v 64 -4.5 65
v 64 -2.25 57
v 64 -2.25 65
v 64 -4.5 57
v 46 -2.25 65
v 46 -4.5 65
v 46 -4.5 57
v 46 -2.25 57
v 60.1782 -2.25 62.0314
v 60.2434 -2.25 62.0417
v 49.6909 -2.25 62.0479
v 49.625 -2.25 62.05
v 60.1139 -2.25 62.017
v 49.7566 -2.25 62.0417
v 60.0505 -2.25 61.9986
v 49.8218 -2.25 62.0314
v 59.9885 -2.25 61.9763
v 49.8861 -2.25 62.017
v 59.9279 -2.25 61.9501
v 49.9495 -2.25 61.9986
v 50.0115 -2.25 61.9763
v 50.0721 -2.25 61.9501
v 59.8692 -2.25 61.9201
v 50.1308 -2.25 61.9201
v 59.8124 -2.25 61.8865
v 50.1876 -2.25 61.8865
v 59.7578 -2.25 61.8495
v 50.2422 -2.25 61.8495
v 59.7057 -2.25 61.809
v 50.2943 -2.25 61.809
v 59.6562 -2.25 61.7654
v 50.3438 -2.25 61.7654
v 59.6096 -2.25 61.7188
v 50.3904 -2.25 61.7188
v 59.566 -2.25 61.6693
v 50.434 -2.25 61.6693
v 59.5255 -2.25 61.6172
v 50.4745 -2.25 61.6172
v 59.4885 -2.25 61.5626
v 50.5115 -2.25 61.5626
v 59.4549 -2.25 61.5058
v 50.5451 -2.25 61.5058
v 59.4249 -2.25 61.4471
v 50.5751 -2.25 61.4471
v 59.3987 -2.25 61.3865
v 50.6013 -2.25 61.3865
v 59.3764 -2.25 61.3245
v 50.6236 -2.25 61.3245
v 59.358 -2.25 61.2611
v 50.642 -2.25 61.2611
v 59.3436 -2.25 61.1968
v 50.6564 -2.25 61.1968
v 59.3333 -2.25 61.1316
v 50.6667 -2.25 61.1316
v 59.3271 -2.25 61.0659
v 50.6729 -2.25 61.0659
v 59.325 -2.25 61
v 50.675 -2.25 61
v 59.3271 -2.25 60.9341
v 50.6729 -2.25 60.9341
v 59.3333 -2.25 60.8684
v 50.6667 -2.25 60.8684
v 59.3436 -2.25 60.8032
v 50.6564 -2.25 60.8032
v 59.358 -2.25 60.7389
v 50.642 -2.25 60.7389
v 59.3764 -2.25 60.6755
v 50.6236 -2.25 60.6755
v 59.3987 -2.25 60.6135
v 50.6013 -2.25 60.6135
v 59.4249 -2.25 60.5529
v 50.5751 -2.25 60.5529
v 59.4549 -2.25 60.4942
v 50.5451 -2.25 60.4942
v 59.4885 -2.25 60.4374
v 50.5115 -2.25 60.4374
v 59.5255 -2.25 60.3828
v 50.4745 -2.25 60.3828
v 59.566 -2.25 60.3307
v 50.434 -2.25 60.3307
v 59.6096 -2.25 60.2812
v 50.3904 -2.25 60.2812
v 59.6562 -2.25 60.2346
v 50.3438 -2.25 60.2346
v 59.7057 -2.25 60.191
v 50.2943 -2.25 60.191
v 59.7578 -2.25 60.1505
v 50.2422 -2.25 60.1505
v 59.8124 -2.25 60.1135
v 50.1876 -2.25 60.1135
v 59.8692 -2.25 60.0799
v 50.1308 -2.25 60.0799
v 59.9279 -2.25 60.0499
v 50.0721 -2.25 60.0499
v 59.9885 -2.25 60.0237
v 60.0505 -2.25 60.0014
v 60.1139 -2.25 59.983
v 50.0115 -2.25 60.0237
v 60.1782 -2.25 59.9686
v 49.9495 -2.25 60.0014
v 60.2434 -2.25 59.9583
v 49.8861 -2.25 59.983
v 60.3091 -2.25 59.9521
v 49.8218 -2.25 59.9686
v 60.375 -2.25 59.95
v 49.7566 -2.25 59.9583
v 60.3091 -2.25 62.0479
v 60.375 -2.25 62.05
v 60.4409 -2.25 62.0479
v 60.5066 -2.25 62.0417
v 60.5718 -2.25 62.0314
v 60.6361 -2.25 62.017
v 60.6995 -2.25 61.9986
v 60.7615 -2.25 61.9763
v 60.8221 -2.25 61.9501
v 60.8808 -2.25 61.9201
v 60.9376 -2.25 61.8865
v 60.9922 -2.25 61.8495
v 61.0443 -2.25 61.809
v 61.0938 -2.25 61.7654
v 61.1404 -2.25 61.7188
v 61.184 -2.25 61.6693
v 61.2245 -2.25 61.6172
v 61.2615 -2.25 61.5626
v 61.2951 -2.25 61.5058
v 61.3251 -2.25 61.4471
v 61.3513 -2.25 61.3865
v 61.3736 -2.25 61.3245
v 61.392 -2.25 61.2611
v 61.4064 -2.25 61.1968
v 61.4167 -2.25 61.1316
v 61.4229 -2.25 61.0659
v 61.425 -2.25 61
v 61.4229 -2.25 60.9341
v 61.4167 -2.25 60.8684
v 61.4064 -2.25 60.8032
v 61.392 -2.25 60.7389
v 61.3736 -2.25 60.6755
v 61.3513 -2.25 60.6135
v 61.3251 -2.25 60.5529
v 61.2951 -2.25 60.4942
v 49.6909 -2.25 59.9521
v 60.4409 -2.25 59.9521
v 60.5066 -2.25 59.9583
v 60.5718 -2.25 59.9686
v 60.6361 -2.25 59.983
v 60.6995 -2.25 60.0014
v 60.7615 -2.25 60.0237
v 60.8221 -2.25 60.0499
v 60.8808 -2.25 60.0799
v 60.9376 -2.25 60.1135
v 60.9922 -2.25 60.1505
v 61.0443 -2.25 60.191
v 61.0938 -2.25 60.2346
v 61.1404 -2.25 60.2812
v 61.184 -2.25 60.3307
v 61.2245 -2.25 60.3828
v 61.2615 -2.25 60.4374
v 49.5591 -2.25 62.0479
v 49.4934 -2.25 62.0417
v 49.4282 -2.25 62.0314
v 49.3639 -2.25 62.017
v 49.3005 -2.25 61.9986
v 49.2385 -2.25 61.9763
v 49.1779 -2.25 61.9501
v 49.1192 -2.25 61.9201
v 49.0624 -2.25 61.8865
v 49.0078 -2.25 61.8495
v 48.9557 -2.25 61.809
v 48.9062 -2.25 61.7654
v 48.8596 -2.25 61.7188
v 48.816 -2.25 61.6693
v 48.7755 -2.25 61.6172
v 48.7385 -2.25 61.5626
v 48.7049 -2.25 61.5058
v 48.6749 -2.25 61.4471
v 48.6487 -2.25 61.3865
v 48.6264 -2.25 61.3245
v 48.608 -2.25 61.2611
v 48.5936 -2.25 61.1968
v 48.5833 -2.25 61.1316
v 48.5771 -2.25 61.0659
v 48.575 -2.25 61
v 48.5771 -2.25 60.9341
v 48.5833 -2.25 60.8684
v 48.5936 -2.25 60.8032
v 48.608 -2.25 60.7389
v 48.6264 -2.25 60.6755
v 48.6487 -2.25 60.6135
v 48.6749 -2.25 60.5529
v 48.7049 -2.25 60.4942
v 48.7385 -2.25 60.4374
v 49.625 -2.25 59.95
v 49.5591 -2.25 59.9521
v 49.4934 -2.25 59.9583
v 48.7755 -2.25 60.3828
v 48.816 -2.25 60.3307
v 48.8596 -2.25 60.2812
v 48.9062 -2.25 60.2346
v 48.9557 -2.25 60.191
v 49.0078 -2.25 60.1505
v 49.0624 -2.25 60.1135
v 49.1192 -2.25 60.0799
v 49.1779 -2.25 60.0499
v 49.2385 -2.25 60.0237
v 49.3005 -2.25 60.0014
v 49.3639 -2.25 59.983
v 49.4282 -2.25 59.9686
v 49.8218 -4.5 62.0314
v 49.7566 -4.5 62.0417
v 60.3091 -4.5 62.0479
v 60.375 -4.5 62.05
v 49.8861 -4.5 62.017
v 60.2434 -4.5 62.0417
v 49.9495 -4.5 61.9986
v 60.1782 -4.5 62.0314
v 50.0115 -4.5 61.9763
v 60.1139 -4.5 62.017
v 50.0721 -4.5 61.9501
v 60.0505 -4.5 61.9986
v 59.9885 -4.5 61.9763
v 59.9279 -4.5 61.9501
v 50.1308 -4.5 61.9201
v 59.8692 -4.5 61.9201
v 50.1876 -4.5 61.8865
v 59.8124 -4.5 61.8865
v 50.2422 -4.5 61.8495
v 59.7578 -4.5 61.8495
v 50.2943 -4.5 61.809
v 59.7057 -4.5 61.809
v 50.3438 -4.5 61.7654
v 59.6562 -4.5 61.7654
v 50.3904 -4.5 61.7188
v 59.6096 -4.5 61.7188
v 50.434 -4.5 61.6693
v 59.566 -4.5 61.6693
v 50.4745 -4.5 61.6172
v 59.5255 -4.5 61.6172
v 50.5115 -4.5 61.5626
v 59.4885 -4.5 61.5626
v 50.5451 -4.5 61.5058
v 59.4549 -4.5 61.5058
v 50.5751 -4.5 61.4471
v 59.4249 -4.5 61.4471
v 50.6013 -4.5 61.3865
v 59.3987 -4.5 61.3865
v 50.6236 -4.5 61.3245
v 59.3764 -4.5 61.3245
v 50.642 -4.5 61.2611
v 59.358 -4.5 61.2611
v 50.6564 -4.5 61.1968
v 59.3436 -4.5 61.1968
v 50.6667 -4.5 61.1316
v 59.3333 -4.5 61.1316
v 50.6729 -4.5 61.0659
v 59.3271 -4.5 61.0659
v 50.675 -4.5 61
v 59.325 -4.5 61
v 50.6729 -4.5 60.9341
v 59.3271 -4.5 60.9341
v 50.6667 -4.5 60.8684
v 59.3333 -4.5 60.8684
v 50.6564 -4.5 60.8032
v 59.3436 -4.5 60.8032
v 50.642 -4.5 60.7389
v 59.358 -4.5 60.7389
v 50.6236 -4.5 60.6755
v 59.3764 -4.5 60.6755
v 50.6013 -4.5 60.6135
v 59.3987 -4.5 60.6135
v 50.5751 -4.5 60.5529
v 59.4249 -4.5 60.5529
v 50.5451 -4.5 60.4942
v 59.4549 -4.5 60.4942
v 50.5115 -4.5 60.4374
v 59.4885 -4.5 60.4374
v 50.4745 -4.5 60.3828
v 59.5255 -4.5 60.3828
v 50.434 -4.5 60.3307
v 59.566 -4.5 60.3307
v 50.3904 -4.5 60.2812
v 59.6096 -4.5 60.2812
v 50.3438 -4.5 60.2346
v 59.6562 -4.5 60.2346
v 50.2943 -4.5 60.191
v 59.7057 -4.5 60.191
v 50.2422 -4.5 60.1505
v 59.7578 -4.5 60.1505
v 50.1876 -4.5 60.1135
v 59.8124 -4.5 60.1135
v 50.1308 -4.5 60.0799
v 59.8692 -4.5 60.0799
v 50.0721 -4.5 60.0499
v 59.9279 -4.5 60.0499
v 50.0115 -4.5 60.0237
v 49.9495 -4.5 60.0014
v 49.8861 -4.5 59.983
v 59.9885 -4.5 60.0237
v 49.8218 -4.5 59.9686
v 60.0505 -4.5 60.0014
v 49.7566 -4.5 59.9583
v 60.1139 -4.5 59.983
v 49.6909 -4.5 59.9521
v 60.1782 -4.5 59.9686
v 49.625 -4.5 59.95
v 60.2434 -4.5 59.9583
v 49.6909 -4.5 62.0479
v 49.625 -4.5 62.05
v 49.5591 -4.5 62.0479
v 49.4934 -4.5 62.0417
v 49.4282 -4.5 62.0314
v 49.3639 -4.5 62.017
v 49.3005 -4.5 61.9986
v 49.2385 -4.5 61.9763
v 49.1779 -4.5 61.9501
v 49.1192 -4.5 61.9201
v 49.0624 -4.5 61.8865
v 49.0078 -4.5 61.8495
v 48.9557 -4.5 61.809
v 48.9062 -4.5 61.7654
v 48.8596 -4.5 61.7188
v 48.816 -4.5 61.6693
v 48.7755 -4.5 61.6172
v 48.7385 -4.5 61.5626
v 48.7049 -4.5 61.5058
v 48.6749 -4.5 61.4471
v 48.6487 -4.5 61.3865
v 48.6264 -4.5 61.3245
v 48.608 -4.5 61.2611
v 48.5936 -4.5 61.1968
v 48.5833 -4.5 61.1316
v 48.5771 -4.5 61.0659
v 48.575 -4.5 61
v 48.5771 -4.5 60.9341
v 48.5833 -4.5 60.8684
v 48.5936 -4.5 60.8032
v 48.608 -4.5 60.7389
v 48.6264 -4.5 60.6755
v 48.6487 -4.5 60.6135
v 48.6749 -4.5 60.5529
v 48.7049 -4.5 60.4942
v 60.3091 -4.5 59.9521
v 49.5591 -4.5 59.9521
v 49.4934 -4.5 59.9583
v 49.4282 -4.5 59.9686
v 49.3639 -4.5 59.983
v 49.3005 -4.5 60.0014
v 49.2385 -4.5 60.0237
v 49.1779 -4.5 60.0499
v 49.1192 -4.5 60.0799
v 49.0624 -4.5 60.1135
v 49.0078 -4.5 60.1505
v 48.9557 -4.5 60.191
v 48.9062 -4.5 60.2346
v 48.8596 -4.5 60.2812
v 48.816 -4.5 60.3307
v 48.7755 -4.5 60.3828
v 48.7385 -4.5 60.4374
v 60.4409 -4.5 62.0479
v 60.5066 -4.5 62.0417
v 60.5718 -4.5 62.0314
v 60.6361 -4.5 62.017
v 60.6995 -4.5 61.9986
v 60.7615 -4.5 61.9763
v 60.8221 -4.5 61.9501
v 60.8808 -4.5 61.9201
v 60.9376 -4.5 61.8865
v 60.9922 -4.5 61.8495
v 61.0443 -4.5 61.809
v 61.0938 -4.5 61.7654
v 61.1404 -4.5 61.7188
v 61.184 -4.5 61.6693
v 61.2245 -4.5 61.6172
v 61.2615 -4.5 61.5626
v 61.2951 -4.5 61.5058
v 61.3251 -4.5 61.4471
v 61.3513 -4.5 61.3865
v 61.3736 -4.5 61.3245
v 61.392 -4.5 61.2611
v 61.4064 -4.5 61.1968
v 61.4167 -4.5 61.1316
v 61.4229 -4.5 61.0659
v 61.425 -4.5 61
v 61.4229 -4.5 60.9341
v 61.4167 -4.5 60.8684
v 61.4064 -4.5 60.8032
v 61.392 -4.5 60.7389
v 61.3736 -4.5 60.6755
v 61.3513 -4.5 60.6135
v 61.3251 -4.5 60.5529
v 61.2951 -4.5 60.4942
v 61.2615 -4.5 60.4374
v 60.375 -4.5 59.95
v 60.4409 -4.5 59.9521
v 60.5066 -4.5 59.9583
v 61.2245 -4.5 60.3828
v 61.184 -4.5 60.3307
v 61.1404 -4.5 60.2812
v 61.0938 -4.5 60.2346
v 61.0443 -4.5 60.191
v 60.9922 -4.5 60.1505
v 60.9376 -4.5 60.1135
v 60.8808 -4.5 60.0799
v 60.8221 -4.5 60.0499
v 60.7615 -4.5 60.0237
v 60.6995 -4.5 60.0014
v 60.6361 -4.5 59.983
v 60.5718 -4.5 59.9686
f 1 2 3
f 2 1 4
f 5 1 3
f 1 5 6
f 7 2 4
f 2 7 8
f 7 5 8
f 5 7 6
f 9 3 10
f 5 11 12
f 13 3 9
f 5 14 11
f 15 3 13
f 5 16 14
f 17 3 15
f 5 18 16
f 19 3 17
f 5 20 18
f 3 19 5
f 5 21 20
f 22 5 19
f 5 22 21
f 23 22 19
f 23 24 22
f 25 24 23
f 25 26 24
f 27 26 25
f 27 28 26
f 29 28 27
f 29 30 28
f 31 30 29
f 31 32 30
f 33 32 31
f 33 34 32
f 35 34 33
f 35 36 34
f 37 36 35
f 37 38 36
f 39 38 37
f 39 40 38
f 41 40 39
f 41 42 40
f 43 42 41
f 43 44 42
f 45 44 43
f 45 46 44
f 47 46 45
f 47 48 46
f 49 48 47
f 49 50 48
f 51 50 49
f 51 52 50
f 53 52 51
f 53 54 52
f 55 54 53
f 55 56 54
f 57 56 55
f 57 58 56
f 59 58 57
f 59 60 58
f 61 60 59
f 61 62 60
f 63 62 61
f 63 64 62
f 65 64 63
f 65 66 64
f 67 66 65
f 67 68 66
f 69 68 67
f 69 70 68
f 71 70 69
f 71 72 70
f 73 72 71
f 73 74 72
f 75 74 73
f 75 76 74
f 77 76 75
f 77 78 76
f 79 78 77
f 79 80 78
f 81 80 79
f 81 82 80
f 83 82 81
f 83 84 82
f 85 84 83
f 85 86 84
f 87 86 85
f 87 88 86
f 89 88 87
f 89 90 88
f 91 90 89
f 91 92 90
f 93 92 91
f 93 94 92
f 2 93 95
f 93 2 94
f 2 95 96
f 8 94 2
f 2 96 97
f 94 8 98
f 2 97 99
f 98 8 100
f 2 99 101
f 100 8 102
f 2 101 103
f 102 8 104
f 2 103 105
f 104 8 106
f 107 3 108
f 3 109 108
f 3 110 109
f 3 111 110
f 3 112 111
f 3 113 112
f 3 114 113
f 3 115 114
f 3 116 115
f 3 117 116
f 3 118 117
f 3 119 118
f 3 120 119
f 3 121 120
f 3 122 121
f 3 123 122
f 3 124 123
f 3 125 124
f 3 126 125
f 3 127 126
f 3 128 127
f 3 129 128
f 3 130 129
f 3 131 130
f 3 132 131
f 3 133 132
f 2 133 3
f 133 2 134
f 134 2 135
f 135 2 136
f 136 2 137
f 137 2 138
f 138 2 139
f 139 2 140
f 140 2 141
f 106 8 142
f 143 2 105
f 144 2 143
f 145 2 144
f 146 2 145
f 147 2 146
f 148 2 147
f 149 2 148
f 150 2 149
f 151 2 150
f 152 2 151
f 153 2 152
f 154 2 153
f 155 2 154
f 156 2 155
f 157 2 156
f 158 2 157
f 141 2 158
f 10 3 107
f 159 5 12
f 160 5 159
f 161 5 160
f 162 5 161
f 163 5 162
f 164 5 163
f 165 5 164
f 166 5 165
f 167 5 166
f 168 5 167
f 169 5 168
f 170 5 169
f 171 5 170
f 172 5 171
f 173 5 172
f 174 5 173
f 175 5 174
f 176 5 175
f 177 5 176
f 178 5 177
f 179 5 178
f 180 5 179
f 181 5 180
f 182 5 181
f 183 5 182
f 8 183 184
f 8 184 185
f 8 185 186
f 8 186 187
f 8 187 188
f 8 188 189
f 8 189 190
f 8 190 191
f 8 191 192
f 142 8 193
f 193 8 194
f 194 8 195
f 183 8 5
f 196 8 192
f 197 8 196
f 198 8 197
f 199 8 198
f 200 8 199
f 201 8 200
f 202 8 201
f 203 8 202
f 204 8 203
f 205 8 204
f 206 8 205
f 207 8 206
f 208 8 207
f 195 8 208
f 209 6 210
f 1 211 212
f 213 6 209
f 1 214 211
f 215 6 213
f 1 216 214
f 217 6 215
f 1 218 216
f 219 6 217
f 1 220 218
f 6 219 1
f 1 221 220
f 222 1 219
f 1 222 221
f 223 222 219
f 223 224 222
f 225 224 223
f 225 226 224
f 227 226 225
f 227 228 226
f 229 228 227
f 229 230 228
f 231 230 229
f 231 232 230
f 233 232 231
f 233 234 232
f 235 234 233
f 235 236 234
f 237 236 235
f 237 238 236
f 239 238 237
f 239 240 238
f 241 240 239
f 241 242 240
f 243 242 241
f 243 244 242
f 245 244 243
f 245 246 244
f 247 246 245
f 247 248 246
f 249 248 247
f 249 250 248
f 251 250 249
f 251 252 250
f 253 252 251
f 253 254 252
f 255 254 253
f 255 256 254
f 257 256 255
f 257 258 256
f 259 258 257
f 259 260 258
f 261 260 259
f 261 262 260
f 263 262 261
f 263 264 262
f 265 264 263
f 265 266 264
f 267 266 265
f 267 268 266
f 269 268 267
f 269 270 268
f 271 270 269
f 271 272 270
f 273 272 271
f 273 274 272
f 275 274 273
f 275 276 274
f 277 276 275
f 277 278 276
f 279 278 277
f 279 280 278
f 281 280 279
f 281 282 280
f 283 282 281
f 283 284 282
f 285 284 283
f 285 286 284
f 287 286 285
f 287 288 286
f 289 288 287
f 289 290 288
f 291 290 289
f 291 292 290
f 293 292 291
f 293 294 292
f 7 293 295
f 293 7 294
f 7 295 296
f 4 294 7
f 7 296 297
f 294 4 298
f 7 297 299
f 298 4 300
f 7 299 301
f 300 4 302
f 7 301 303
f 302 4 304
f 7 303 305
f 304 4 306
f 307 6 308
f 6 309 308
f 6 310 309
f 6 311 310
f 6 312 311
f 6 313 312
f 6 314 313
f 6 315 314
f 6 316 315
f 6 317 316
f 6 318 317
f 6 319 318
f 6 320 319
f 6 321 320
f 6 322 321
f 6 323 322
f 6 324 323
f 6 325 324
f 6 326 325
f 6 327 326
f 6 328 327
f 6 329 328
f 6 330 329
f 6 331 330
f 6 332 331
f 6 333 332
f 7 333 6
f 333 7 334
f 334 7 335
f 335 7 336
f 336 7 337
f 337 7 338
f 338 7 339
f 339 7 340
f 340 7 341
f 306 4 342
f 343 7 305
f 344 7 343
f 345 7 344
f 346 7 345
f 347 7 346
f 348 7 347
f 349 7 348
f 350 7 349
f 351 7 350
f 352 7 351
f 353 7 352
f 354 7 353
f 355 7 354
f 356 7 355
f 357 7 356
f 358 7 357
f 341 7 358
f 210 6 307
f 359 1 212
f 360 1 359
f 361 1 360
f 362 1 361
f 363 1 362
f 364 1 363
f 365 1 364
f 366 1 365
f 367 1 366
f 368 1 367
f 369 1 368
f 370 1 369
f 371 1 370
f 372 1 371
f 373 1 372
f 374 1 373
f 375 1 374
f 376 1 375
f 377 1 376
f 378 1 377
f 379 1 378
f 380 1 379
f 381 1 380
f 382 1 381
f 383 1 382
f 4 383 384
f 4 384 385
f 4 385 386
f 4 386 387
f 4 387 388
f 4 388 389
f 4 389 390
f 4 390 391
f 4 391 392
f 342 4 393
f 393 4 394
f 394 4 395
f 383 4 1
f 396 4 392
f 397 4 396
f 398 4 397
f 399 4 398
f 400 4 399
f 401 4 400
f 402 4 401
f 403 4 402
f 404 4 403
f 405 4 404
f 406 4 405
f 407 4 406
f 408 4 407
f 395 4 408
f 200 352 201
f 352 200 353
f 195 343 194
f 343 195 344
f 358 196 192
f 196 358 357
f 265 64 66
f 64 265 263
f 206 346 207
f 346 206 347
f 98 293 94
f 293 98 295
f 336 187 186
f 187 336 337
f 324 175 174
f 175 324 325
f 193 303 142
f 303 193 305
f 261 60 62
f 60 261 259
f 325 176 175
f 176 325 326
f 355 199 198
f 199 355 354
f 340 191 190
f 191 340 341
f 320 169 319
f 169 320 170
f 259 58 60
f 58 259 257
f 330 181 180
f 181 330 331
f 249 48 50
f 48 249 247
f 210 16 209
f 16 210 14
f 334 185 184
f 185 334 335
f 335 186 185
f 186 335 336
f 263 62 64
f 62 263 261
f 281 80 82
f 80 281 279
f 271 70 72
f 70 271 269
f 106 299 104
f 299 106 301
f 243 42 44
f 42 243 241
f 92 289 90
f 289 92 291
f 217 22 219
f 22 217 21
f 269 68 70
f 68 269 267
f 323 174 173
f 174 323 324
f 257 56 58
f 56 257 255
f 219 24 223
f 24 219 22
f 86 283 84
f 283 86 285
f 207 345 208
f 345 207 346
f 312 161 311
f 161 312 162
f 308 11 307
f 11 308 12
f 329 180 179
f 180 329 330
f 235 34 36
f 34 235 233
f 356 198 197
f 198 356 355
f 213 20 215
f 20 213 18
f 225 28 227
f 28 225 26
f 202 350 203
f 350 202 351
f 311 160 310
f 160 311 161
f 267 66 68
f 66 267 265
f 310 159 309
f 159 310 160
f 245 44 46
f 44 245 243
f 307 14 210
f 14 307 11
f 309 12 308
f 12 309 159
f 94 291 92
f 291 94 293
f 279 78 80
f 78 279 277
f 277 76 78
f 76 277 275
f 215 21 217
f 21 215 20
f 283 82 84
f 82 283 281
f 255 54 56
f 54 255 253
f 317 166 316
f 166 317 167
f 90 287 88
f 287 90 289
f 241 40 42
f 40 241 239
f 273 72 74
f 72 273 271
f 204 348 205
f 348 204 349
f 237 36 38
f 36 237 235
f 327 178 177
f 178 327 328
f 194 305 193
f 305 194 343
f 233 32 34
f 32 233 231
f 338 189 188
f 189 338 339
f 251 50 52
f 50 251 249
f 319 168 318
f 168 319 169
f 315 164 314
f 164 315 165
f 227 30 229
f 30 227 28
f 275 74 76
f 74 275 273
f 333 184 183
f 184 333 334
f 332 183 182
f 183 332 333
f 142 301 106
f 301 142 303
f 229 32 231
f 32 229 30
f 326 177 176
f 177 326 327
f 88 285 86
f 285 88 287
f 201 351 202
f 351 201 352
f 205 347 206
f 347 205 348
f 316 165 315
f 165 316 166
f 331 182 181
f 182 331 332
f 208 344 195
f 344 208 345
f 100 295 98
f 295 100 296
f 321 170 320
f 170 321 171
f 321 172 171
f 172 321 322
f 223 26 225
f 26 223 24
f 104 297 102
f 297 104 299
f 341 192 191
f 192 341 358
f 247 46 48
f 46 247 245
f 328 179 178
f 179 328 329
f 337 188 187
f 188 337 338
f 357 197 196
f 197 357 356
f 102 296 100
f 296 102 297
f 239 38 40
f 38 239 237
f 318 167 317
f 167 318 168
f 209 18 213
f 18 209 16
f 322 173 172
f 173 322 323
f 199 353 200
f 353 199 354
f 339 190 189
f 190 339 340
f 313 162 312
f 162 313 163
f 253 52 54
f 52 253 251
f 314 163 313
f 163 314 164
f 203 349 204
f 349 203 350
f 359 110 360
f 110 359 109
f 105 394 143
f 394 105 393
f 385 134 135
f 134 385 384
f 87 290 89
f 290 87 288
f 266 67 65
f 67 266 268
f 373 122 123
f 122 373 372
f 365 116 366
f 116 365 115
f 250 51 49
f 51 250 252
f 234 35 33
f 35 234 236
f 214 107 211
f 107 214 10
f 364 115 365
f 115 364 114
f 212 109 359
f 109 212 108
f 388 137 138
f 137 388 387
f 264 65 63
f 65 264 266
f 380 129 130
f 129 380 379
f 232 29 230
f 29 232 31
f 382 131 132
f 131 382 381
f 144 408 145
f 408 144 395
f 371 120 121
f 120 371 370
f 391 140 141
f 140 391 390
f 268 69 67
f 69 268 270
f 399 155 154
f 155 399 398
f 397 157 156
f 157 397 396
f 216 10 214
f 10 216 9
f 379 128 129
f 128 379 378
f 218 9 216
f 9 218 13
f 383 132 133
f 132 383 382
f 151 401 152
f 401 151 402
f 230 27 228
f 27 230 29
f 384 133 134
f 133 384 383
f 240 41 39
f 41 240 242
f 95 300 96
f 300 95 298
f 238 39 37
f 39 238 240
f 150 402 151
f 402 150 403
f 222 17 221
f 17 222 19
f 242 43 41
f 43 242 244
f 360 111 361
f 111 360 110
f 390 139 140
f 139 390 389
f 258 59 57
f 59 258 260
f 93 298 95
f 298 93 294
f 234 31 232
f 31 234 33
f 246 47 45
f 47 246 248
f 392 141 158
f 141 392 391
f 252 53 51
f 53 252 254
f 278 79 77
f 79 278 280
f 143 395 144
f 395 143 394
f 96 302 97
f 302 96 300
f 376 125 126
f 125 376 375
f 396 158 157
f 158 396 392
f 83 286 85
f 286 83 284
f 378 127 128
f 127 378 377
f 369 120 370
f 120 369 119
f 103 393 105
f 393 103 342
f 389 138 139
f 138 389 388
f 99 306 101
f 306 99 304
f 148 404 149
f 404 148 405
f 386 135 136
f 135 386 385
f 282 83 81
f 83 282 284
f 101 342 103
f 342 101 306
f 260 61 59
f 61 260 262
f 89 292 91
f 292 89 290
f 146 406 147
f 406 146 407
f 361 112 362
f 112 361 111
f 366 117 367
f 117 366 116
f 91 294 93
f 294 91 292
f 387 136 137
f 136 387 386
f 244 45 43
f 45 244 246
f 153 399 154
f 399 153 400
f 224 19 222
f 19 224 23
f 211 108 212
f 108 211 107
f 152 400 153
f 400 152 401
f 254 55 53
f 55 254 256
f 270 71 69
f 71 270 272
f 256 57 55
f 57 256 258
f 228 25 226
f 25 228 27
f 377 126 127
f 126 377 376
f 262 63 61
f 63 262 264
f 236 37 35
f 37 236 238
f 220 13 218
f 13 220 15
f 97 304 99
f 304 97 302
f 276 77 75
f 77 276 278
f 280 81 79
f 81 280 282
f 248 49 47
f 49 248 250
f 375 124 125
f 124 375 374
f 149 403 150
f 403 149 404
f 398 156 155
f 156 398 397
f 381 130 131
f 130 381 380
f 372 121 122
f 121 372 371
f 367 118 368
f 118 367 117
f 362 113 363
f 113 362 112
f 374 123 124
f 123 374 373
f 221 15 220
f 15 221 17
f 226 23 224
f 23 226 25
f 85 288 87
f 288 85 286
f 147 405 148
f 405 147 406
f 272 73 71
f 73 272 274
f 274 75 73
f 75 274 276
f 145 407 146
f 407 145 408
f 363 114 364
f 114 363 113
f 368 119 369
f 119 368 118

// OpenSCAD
// ----- ----- ----- Declaração de Variáveis ----- ----- ----- //
res=100;
folga1=0.125;

esp=2.25;
compriObilongo=20;
largObi=5.85;

basePortax=56;
basePortay=2.85;
basePortaz=15;
PortaR=5.7/2;
PortaAlt=basePortay;
entrePorta=(52.7+41.25)/2;

haste1x=30;
haste1z=30;

haste2x=60;
haste2z=10;

haste3x=10;
haste3z=60+20;

haste4x=10;
haste4z=10;

portax=18;
portaz=8;

entreFuros=(8.6+12.9)/2;
rFuro=2.1/2;

vao=0.5;

entrePard=58-22-6*folga1;

// ----- ----- ----- Declaração de Funções ----- ----- ----- //

// ----- ----- ----- MAIN ----- ----- ----- //
translate([0,0,basePortaz])
difference(){
    translate([0,0,0]){
        //cube([haste2x,esp,haste1z]);
        //translate([0,-esp-(3/2)*basePortay,0])cube([haste2x,esp+(3/2)*basePortay,haste1z]);
        //translate([0,0,haste1z])cube([haste2x,esp,haste2z]);
        //translate([0,0,haste1z+haste2z])cube([haste3x,esp,haste3z]);
        //translate([0,0,haste1z+haste2z+haste3z])cube([haste2x,esp,haste2z]);
        //translate([haste2x-haste3x,0,haste1z+haste2z])cube([haste4x,esp,haste4z-portaz]);
        //translate([haste2x-haste3x+haste4x/2-portax/2,-esp,haste1z+haste2z+haste4z-portaz])cube([portax,esp,portaz]);
        //translate([haste2x-haste3x+haste4x/2-portax/2,0,haste1z+haste2z+haste4z-portaz])cube([portax,esp,portaz]);//
        translate([haste2x-haste3x+haste4x/2-portax/2,-2*esp,haste1z+haste2z+haste4z-portaz])cube([portax,esp,portaz]);
        //translate([haste2x-haste3x,0,haste1z+haste2z+haste3z-haste4z-compriObilongo+portaz])cube([haste4x,esp,haste4z+compriObilongo-portaz]);
        //translate([haste2x-haste3x,-esp,haste1z+haste2z+haste3z-haste4z-compriObilongo+portaz])cube([haste4x,esp,haste4z+compriObilongo-portaz+haste4z]);
        //translate([haste2x-haste3x+haste4x/2-portax/2,-esp,haste1z+haste2z+haste3z-haste4z-compriObilongo])cube([portax,esp,portaz]);
        //translate([haste2x-haste3x+haste4x/2-portax/2,-2*esp,haste1z+haste2z+haste3z-haste4z-compriObilongo])cube([portax,esp,portaz]);
    }
    
    // Furos do Porta
    #translate([-entreFuros/2,-2*esp,0])
    #translate([haste2x-haste4x/2,0,haste1z+haste2z+haste4z-portaz/2])
    #rotate([-90,0,0])
    #cylinder(3*esp,rFuro,rFuro,$fn=res);
    
    #translate([entreFuros/2,-2*esp,0])
    #translate([haste2x-haste4x/2,0,haste1z+haste2z+haste4z-portaz/2])
    #rotate([-90,0,0])
    #cylinder(3*esp,rFuro,rFuro,$fn=res);
    
    #translate([-entreFuros/2,-2*esp,haste1z+haste2z+haste3z-haste4z-20])
    #translate([haste2x-haste4x/2,0,portaz/2])
    #rotate([-90,0,0])
    #cylinder(2*esp,rFuro,rFuro,$fn=res);
    
    #translate([entreFuros/2,-2*esp,haste1z+haste2z+haste3z-haste4z-20])
    #translate([haste2x-haste4x/2,0,portaz/2])
    #rotate([-90,0,0])
    #cylinder(2*esp,rFuro,rFuro,$fn=res);
    
    //Furo Obilongo de Cima
    #hull(){
        #translate([haste2x-haste4x/2,-2*esp,haste1z+haste2z*1.2+haste3z-haste4z-20+(3/2)*portaz])
        #rotate([-90,0,0])
        #cylinder(4*esp,largObi/2,largObi/2,$fn=res);
        
        #translate([0,0,haste4z+compriObilongo-2*portaz+haste2z*0.8])
        #translate([haste2x-haste4x/2,-2*esp,haste1z+haste2z+haste3z-haste4z-20+(3/2)*portaz])
        #rotate([-90,0,0])
        #cylinder(4*esp,largObi/2+folga1,largObi/2+folga1,$fn=res);
    }
    
    // Furo Obilongo de Baixo
    #hull(){
        #translate([haste2x-haste4x/2,-2*esp,haste1z+haste2z*0.8+haste3z-3*haste4z-3*20+(1)*portaz])
        #rotate([-90,0,0])
        #cylinder(4*esp,largObi/2,largObi/2,$fn=res);
        
        #translate([0,0,-(haste4z+compriObilongo-2*portaz+haste2z*0.8)])
        #translate([haste2x-haste4x/2,-2*esp,haste1z+haste2z+haste3z-3*haste4z-3*20+(1)*portaz])
        #rotate([-90,0,0])
        #cylinder(4*esp,largObi/2+folga1,largObi/2+folga1,$fn=res);
    }
    
    #translate([-4*folga1,0,-portaz-(haste4z+compriObilongo-2*portaz+haste2z)])
    #translate([haste2x-haste3x+haste4x/2-portax/2,-2*esp,haste1z+haste2z+haste4z-portaz])
    #cube([portax+8*folga1,2*esp,portaz+haste4z+compriObilongo-2*portaz+haste2z]);
    
    //#translate([haste2x-haste4x/2,-esp,0])
    //#rotate([0,0,45])
    //#translate([-vao/2,-vao/2,0])
    //#cube([vao,vao,haste1z+2*haste2z+haste3z]);
}
/*
difference(){
    translate([haste2x-haste4x/2-basePortax/2,-esp-basePortay/2,0])cube([basePortax,basePortay,basePortaz]);
    
    #translate([haste2x-haste4x/2-entrePorta/2,-esp+basePortay/2,basePortaz/2])
    #rotate([90,0,0])
    #cylinder(PortaAlt,PortaR,PortaR,$fn=res);
   
    #translate([haste2x-haste4x/2+entrePorta/2,-esp+basePortay/2,basePortaz/2])
    #rotate([90,0,0])
    #cylinder(PortaAlt,PortaR,PortaR,$fn=res);
    //entrePorta
}*/


/*// Sustentação 1 
poliedro1Points = [[                       haste2x, -(esp+(3/2)*basePortay),         basePortaz],  //0
                   [haste2x-haste4x/2+basePortax/2, -(esp+(3/2)*basePortay),         basePortaz],  //1
                   [haste2x-haste4x/2+basePortax/2,                     esp,         basePortaz],  //2
                   [                       haste2x,                     esp,         basePortaz],  //3
                   [                       haste2x, -(esp+(3/2)*basePortay), basePortaz+haste1z],  //4
                   [                       haste2x,                     esp, basePortaz+haste1z]]; //5
 
poliedro1Faces = [[0,1,2,3],  // baixo
                    [0,1,4],  // frente
                              // cima
                  [1,4,5,2],  // direita
                    [5,3,2],  // trazeira
                  [5,4,0,3]]; // esquerda

translate([haste2x,-(esp+(3/2)*basePortay),basePortaz])cube([-haste4x/2+basePortax/2,esp+(esp+(3/2)*basePortay),10]);

// Sustentação 2
translate([basePortax/2-entrePard/2,0,0])
translate([haste2x-haste4x/2-basePortax/2,-esp-(3/2)*basePortay,0])
cube([entrePard,esp+esp+(3/2)*basePortay,basePortaz]);*/

// Furo Obilongo de Baixo
//translate([haste2x-haste3x,-esp,haste1z+haste2z+haste3z-haste4z-compriObilongo+portaz-3*haste4z-3*20+portaz+10])cube([haste4x,esp,haste4z+compriObilongo-portaz+haste4z]);
